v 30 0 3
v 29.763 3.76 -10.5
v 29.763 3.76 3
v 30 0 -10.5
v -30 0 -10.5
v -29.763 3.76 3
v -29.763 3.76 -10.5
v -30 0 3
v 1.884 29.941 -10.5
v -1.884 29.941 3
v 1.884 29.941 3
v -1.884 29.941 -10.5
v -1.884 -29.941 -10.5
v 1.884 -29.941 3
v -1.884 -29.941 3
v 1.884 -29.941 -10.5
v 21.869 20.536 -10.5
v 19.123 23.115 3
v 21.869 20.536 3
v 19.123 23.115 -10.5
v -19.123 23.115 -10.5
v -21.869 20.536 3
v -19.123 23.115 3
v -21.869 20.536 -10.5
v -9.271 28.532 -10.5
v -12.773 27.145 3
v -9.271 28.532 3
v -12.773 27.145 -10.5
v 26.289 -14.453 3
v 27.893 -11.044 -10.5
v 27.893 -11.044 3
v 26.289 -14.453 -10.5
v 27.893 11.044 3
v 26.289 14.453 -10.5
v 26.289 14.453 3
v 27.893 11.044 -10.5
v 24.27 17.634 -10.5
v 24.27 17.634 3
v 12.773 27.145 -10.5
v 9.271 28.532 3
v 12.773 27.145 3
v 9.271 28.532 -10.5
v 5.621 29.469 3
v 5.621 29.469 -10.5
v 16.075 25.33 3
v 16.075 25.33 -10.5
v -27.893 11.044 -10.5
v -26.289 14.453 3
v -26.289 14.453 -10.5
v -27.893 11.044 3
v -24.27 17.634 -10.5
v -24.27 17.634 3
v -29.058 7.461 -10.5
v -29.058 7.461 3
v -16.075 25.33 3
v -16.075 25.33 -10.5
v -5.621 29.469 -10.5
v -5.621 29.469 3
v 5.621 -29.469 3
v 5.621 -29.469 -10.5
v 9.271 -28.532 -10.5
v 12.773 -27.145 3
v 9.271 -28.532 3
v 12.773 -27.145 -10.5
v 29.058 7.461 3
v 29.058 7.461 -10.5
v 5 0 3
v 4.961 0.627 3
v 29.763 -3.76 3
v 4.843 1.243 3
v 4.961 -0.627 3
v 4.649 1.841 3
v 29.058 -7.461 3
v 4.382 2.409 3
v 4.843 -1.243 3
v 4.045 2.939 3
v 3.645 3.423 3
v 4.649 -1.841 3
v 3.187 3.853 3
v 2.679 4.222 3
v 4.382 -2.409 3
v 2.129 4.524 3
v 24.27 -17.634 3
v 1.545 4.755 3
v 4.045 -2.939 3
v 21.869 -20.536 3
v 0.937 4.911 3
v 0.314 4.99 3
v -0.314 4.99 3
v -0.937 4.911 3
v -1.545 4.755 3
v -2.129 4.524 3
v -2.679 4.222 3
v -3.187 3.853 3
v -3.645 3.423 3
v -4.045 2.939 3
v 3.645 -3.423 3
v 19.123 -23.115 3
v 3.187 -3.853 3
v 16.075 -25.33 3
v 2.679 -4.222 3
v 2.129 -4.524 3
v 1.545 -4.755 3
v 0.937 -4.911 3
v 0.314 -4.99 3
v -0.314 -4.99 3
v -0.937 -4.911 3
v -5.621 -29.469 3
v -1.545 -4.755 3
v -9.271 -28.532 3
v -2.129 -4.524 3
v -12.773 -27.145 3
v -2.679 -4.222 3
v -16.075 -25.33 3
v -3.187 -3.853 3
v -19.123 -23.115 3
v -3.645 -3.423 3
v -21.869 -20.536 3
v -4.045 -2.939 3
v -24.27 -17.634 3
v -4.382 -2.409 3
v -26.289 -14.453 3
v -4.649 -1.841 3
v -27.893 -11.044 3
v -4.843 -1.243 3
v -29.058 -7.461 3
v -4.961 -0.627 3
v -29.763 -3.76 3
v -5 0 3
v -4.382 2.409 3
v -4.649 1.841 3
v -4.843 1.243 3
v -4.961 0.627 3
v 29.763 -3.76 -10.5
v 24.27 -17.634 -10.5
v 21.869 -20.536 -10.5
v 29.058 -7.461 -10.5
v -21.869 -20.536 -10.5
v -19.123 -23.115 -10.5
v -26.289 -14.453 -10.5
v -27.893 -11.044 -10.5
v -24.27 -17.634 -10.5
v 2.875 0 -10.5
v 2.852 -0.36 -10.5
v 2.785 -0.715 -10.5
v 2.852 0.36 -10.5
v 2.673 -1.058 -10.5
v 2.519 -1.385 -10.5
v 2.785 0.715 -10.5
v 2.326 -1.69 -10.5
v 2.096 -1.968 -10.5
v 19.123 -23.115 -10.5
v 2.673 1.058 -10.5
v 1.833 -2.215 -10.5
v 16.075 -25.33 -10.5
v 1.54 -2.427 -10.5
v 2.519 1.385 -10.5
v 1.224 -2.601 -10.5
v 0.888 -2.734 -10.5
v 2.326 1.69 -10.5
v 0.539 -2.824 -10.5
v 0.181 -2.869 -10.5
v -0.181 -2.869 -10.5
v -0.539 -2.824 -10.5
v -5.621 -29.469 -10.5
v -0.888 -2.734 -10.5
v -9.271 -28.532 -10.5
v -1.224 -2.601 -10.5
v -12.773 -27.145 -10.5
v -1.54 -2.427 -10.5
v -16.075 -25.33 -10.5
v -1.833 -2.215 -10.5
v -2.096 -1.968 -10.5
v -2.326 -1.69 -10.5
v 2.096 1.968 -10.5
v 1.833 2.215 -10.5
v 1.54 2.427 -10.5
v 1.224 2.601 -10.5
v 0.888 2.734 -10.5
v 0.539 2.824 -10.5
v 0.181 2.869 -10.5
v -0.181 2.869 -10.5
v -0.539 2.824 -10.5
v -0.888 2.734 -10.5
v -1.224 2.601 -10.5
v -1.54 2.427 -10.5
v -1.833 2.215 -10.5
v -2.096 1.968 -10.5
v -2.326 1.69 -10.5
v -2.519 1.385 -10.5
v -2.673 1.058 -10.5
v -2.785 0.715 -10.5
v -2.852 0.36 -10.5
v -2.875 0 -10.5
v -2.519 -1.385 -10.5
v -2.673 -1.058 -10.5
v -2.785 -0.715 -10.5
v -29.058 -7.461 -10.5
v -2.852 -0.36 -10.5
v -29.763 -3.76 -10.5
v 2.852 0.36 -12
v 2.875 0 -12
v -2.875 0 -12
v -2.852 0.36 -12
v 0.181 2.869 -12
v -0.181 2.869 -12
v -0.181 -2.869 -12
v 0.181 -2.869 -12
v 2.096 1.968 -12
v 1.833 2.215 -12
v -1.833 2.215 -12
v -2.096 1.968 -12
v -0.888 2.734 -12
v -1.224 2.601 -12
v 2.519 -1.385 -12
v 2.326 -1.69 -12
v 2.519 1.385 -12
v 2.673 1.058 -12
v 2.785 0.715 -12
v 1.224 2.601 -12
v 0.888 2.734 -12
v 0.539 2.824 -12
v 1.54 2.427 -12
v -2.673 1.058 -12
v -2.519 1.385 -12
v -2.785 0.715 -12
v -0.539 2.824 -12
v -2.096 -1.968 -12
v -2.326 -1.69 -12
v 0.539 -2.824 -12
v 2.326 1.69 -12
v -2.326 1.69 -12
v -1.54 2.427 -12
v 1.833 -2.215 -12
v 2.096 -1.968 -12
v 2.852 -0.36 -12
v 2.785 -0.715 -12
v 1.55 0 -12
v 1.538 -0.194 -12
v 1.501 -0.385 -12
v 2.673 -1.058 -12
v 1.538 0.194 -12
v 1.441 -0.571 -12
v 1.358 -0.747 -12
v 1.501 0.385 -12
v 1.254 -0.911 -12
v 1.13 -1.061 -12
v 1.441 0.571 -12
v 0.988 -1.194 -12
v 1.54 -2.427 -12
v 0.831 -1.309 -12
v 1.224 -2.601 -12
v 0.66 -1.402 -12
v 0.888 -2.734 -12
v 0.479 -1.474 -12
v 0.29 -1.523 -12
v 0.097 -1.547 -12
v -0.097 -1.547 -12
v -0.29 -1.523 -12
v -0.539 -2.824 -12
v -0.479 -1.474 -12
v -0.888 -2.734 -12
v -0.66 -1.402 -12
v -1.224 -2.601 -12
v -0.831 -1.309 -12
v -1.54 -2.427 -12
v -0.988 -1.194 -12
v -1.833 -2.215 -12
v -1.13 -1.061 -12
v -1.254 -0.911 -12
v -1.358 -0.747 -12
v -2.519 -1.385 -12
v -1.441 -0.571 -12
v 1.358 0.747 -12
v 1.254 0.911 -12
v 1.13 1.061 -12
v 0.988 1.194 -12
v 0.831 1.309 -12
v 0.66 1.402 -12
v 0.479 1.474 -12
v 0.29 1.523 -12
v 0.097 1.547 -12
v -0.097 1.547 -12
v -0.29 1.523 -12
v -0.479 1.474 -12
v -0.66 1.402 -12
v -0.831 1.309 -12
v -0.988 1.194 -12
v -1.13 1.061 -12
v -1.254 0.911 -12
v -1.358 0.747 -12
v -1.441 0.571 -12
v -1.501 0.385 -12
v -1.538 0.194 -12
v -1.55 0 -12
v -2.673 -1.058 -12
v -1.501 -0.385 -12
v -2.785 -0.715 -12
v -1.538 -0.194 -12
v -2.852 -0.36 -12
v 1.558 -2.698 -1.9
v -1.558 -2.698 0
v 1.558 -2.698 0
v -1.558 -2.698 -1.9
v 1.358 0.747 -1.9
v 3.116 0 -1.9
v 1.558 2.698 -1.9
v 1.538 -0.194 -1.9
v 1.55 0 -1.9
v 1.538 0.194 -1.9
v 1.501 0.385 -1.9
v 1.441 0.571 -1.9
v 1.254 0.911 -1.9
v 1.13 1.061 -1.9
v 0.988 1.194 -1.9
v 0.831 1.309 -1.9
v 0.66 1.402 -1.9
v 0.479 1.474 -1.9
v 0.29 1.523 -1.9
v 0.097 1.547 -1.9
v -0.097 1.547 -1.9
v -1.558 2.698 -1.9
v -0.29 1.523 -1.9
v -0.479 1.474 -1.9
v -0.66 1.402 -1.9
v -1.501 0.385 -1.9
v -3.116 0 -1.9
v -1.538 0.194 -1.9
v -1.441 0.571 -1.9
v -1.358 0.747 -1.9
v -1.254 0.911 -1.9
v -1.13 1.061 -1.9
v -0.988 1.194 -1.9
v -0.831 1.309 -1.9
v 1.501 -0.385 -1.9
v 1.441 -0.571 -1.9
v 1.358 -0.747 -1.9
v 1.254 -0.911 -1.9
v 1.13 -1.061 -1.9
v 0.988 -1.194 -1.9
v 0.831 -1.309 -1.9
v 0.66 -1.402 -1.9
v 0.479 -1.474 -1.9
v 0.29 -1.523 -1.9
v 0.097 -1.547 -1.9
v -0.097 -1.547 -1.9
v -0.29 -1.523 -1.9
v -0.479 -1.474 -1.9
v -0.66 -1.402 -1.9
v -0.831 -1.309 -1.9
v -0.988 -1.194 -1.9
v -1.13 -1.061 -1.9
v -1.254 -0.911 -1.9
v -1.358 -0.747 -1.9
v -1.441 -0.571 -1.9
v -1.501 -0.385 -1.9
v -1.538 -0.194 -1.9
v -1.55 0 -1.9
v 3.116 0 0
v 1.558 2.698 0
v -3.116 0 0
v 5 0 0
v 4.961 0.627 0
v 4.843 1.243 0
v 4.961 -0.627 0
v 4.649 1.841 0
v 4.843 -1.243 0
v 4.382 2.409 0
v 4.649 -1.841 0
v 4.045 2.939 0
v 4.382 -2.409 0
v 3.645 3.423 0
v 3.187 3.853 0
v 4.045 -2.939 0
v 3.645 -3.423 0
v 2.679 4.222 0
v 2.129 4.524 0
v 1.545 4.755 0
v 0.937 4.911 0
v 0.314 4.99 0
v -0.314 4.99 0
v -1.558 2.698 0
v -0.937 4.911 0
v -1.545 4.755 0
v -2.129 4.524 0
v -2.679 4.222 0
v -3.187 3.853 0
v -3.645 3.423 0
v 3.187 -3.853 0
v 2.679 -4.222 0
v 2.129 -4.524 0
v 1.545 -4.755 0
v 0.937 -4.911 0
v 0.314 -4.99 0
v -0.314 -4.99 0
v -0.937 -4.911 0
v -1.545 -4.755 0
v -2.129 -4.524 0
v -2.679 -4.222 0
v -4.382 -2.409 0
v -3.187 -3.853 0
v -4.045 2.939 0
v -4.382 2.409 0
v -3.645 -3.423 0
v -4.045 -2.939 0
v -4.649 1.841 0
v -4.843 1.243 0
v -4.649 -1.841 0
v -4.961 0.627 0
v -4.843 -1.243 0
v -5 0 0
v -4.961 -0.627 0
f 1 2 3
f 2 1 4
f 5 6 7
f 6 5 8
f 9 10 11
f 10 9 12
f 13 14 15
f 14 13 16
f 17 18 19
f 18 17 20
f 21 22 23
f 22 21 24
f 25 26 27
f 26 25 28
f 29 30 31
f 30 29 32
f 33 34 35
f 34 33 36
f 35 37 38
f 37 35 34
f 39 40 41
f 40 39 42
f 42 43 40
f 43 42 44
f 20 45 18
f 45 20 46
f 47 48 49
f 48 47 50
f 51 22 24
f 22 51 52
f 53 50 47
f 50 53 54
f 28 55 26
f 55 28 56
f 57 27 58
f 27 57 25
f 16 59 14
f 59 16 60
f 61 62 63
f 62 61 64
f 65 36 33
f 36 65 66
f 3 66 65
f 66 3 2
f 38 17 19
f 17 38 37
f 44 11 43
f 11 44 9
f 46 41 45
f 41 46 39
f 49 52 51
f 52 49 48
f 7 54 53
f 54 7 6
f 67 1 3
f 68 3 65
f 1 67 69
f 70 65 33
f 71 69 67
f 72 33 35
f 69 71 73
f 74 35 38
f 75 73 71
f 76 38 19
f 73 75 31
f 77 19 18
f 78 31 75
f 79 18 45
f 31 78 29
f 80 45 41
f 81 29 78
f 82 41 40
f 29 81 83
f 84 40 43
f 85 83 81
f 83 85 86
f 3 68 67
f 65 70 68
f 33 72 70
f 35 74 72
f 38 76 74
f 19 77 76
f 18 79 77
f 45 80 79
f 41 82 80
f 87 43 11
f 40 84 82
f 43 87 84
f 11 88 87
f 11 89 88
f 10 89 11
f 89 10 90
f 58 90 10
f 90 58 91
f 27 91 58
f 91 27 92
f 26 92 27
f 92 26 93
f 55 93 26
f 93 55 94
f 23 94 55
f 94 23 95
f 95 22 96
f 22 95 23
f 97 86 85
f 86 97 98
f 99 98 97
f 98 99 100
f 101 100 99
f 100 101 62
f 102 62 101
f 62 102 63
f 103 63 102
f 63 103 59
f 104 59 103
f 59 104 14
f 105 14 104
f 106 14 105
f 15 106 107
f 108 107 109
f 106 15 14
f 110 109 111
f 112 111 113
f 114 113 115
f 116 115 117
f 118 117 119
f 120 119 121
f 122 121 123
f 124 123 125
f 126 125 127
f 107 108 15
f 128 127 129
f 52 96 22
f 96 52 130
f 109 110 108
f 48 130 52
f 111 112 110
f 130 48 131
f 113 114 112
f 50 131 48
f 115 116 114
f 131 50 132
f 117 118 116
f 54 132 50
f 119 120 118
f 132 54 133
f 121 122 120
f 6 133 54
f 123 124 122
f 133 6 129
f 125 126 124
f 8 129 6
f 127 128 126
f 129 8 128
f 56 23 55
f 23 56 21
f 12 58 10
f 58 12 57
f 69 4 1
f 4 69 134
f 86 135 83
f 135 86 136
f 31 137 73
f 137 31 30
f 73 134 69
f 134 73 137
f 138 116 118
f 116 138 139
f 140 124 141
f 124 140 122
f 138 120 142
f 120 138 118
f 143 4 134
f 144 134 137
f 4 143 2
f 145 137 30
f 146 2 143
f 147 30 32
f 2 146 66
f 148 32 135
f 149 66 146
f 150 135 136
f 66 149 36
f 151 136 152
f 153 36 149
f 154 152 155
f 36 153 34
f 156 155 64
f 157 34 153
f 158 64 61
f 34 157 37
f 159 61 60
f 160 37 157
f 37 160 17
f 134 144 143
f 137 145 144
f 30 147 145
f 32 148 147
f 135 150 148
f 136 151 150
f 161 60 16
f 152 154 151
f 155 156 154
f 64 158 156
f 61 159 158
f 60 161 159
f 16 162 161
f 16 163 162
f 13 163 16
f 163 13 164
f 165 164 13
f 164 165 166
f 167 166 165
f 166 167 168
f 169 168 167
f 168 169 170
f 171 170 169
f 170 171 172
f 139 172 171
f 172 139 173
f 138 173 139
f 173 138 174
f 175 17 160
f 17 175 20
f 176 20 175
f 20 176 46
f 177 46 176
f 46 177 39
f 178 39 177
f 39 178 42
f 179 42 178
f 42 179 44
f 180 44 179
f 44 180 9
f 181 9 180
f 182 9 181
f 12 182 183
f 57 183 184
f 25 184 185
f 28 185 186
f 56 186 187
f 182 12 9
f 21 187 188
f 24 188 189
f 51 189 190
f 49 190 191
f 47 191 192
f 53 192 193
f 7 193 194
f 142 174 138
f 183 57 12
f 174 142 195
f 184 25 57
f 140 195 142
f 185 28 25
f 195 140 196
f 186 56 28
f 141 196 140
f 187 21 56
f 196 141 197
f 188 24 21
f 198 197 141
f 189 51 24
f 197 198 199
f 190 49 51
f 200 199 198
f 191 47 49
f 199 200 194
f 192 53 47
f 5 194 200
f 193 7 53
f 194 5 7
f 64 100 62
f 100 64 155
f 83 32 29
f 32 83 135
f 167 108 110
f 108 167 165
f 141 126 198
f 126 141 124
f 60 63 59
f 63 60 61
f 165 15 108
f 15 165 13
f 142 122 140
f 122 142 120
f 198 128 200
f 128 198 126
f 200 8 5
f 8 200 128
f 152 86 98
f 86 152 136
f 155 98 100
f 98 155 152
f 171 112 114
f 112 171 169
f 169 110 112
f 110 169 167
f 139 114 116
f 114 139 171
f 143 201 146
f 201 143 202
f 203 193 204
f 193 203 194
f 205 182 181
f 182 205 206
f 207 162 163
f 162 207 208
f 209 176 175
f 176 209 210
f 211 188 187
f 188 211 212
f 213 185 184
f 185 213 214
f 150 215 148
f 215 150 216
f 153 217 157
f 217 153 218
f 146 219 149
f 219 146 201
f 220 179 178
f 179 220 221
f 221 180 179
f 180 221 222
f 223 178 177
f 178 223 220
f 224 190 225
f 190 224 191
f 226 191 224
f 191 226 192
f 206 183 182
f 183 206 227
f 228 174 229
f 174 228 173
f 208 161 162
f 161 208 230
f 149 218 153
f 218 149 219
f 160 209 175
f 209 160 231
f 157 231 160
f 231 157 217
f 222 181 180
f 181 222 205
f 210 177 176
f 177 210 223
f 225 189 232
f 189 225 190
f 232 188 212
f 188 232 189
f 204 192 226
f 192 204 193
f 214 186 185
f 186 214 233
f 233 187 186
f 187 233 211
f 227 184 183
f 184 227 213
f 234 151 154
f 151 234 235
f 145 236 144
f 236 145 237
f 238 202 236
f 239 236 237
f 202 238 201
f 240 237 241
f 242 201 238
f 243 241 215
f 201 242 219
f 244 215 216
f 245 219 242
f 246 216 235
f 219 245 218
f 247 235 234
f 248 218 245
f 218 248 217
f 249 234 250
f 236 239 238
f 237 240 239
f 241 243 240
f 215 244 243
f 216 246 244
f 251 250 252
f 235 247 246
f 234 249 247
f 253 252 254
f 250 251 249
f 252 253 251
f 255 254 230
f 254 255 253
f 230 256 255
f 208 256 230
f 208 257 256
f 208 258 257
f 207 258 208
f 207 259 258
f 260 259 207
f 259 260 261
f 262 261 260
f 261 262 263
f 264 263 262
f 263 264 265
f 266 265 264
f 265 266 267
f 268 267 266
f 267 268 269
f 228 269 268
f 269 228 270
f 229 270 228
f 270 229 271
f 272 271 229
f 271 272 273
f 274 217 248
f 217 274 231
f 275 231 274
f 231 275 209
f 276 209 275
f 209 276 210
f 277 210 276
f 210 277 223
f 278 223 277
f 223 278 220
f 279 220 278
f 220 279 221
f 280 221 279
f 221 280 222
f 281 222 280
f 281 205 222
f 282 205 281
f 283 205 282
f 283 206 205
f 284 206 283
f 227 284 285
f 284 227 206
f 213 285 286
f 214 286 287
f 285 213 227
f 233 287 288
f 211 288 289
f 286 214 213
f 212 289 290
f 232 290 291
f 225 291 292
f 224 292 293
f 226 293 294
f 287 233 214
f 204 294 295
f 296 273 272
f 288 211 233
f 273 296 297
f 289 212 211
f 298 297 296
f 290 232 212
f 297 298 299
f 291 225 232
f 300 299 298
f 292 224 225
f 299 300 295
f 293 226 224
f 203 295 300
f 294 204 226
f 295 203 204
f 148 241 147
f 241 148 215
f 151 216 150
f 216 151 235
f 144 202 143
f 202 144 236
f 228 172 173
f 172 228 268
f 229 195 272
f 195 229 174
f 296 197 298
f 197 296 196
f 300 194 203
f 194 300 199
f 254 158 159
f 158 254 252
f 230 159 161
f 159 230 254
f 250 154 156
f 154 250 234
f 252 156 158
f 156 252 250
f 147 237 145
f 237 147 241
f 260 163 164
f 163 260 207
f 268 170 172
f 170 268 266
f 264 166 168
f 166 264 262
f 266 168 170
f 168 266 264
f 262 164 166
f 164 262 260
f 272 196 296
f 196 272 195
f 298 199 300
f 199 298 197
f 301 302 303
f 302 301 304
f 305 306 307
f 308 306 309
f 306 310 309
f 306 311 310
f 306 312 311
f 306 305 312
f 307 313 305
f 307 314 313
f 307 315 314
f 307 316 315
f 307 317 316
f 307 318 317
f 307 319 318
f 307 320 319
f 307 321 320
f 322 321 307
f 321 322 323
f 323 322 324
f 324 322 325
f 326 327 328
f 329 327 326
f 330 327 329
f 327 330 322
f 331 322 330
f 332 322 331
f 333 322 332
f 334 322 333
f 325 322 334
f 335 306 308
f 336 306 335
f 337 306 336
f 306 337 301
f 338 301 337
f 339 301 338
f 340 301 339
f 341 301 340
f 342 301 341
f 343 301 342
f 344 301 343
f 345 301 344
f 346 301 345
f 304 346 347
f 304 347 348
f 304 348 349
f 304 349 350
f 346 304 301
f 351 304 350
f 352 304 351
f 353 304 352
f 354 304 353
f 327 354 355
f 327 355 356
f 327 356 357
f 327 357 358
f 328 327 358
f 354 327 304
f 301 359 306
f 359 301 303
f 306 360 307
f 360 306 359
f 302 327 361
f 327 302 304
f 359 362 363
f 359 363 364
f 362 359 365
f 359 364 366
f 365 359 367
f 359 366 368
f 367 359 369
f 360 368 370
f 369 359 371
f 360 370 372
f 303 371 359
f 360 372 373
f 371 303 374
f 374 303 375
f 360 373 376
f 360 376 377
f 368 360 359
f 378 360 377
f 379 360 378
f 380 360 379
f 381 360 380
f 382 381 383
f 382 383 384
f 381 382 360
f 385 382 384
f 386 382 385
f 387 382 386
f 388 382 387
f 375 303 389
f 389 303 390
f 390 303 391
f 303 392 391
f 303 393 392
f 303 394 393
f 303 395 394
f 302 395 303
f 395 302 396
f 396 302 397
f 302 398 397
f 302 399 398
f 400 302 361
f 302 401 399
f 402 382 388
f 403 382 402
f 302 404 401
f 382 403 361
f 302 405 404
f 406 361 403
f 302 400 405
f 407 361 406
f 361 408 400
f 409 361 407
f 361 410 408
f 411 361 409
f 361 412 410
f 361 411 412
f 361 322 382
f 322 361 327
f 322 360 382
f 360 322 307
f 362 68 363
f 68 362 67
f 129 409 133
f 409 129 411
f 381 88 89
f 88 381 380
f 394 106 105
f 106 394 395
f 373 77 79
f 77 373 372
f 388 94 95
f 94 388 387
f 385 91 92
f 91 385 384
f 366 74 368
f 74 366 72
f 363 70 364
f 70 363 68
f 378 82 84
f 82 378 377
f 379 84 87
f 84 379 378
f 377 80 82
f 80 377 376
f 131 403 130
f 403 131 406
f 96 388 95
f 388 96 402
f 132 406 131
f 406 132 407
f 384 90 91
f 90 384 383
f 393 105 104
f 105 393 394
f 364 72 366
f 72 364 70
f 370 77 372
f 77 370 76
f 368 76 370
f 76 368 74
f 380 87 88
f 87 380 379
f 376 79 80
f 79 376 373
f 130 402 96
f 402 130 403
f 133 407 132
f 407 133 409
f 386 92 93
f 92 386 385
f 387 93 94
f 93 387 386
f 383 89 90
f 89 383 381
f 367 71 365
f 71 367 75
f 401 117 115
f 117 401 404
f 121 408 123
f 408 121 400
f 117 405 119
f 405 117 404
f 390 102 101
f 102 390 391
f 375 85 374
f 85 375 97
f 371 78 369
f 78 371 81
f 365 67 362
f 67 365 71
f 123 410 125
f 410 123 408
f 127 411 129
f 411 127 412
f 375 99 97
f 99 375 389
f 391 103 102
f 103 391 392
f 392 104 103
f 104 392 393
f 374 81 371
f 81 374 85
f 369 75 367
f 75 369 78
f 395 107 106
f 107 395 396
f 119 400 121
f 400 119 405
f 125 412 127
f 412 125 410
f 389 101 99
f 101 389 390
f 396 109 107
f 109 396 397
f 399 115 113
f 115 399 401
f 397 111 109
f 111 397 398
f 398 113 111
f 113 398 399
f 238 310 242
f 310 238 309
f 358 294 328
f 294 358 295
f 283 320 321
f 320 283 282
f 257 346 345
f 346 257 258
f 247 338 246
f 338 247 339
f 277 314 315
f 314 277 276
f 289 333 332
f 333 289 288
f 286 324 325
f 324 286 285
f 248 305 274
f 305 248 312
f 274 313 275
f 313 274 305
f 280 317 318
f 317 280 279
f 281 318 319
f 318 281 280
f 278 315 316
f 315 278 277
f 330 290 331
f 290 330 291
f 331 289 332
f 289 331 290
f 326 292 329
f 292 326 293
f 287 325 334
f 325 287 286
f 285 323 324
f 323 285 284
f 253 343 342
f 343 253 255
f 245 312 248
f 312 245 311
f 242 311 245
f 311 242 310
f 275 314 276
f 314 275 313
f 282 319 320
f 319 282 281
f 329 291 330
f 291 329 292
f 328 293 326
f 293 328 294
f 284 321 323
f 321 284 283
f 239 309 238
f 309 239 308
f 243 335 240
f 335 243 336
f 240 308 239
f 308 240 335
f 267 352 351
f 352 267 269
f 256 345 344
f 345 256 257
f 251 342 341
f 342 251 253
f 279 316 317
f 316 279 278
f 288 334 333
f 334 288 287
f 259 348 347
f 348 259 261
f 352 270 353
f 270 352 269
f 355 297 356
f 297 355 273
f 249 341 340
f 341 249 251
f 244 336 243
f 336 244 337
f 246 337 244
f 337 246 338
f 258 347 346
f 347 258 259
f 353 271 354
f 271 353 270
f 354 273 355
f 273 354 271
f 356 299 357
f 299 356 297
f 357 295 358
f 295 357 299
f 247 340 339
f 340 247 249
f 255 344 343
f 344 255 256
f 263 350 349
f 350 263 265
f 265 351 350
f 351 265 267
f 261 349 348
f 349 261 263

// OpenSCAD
$fn = 50;

difference() {
	union() {
		translate(v = [0, 0, -10.5]) {
			cylinder(h = 13.5, r = 30.0);
		}
		#translate(v = [0, 0, -12.0]) {
			cylinder(h = 12, r = 2.875);
		}
	}
	union() {
		translate(v = [0, 0, 0]) {
			rotate(a = [0, 0, 0]) {
				difference() {
					union() {
						translate(v = [0, 0, -1.9]) {
							linear_extrude(height = 1.9) {
								polygon(points = [[3.1158, 0.0], [1.5579000000000005, 2.698361953111554], [-1.5578999999999994, 2.6983619531115544], [-3.1158, 3.815754496783323e-16], [-1.5579000000000014, -2.6983619531115535], [1.557899999999998, -2.6983619531115552]]);
							}
						}
					}
					union();
				}
			}
		}
		#cylinder(h = 3, r = 5.0);
		#translate(v = [0, 0, -100.0]) {
			cylinder(h = 200, r = 1.55);
		}
	}
}
